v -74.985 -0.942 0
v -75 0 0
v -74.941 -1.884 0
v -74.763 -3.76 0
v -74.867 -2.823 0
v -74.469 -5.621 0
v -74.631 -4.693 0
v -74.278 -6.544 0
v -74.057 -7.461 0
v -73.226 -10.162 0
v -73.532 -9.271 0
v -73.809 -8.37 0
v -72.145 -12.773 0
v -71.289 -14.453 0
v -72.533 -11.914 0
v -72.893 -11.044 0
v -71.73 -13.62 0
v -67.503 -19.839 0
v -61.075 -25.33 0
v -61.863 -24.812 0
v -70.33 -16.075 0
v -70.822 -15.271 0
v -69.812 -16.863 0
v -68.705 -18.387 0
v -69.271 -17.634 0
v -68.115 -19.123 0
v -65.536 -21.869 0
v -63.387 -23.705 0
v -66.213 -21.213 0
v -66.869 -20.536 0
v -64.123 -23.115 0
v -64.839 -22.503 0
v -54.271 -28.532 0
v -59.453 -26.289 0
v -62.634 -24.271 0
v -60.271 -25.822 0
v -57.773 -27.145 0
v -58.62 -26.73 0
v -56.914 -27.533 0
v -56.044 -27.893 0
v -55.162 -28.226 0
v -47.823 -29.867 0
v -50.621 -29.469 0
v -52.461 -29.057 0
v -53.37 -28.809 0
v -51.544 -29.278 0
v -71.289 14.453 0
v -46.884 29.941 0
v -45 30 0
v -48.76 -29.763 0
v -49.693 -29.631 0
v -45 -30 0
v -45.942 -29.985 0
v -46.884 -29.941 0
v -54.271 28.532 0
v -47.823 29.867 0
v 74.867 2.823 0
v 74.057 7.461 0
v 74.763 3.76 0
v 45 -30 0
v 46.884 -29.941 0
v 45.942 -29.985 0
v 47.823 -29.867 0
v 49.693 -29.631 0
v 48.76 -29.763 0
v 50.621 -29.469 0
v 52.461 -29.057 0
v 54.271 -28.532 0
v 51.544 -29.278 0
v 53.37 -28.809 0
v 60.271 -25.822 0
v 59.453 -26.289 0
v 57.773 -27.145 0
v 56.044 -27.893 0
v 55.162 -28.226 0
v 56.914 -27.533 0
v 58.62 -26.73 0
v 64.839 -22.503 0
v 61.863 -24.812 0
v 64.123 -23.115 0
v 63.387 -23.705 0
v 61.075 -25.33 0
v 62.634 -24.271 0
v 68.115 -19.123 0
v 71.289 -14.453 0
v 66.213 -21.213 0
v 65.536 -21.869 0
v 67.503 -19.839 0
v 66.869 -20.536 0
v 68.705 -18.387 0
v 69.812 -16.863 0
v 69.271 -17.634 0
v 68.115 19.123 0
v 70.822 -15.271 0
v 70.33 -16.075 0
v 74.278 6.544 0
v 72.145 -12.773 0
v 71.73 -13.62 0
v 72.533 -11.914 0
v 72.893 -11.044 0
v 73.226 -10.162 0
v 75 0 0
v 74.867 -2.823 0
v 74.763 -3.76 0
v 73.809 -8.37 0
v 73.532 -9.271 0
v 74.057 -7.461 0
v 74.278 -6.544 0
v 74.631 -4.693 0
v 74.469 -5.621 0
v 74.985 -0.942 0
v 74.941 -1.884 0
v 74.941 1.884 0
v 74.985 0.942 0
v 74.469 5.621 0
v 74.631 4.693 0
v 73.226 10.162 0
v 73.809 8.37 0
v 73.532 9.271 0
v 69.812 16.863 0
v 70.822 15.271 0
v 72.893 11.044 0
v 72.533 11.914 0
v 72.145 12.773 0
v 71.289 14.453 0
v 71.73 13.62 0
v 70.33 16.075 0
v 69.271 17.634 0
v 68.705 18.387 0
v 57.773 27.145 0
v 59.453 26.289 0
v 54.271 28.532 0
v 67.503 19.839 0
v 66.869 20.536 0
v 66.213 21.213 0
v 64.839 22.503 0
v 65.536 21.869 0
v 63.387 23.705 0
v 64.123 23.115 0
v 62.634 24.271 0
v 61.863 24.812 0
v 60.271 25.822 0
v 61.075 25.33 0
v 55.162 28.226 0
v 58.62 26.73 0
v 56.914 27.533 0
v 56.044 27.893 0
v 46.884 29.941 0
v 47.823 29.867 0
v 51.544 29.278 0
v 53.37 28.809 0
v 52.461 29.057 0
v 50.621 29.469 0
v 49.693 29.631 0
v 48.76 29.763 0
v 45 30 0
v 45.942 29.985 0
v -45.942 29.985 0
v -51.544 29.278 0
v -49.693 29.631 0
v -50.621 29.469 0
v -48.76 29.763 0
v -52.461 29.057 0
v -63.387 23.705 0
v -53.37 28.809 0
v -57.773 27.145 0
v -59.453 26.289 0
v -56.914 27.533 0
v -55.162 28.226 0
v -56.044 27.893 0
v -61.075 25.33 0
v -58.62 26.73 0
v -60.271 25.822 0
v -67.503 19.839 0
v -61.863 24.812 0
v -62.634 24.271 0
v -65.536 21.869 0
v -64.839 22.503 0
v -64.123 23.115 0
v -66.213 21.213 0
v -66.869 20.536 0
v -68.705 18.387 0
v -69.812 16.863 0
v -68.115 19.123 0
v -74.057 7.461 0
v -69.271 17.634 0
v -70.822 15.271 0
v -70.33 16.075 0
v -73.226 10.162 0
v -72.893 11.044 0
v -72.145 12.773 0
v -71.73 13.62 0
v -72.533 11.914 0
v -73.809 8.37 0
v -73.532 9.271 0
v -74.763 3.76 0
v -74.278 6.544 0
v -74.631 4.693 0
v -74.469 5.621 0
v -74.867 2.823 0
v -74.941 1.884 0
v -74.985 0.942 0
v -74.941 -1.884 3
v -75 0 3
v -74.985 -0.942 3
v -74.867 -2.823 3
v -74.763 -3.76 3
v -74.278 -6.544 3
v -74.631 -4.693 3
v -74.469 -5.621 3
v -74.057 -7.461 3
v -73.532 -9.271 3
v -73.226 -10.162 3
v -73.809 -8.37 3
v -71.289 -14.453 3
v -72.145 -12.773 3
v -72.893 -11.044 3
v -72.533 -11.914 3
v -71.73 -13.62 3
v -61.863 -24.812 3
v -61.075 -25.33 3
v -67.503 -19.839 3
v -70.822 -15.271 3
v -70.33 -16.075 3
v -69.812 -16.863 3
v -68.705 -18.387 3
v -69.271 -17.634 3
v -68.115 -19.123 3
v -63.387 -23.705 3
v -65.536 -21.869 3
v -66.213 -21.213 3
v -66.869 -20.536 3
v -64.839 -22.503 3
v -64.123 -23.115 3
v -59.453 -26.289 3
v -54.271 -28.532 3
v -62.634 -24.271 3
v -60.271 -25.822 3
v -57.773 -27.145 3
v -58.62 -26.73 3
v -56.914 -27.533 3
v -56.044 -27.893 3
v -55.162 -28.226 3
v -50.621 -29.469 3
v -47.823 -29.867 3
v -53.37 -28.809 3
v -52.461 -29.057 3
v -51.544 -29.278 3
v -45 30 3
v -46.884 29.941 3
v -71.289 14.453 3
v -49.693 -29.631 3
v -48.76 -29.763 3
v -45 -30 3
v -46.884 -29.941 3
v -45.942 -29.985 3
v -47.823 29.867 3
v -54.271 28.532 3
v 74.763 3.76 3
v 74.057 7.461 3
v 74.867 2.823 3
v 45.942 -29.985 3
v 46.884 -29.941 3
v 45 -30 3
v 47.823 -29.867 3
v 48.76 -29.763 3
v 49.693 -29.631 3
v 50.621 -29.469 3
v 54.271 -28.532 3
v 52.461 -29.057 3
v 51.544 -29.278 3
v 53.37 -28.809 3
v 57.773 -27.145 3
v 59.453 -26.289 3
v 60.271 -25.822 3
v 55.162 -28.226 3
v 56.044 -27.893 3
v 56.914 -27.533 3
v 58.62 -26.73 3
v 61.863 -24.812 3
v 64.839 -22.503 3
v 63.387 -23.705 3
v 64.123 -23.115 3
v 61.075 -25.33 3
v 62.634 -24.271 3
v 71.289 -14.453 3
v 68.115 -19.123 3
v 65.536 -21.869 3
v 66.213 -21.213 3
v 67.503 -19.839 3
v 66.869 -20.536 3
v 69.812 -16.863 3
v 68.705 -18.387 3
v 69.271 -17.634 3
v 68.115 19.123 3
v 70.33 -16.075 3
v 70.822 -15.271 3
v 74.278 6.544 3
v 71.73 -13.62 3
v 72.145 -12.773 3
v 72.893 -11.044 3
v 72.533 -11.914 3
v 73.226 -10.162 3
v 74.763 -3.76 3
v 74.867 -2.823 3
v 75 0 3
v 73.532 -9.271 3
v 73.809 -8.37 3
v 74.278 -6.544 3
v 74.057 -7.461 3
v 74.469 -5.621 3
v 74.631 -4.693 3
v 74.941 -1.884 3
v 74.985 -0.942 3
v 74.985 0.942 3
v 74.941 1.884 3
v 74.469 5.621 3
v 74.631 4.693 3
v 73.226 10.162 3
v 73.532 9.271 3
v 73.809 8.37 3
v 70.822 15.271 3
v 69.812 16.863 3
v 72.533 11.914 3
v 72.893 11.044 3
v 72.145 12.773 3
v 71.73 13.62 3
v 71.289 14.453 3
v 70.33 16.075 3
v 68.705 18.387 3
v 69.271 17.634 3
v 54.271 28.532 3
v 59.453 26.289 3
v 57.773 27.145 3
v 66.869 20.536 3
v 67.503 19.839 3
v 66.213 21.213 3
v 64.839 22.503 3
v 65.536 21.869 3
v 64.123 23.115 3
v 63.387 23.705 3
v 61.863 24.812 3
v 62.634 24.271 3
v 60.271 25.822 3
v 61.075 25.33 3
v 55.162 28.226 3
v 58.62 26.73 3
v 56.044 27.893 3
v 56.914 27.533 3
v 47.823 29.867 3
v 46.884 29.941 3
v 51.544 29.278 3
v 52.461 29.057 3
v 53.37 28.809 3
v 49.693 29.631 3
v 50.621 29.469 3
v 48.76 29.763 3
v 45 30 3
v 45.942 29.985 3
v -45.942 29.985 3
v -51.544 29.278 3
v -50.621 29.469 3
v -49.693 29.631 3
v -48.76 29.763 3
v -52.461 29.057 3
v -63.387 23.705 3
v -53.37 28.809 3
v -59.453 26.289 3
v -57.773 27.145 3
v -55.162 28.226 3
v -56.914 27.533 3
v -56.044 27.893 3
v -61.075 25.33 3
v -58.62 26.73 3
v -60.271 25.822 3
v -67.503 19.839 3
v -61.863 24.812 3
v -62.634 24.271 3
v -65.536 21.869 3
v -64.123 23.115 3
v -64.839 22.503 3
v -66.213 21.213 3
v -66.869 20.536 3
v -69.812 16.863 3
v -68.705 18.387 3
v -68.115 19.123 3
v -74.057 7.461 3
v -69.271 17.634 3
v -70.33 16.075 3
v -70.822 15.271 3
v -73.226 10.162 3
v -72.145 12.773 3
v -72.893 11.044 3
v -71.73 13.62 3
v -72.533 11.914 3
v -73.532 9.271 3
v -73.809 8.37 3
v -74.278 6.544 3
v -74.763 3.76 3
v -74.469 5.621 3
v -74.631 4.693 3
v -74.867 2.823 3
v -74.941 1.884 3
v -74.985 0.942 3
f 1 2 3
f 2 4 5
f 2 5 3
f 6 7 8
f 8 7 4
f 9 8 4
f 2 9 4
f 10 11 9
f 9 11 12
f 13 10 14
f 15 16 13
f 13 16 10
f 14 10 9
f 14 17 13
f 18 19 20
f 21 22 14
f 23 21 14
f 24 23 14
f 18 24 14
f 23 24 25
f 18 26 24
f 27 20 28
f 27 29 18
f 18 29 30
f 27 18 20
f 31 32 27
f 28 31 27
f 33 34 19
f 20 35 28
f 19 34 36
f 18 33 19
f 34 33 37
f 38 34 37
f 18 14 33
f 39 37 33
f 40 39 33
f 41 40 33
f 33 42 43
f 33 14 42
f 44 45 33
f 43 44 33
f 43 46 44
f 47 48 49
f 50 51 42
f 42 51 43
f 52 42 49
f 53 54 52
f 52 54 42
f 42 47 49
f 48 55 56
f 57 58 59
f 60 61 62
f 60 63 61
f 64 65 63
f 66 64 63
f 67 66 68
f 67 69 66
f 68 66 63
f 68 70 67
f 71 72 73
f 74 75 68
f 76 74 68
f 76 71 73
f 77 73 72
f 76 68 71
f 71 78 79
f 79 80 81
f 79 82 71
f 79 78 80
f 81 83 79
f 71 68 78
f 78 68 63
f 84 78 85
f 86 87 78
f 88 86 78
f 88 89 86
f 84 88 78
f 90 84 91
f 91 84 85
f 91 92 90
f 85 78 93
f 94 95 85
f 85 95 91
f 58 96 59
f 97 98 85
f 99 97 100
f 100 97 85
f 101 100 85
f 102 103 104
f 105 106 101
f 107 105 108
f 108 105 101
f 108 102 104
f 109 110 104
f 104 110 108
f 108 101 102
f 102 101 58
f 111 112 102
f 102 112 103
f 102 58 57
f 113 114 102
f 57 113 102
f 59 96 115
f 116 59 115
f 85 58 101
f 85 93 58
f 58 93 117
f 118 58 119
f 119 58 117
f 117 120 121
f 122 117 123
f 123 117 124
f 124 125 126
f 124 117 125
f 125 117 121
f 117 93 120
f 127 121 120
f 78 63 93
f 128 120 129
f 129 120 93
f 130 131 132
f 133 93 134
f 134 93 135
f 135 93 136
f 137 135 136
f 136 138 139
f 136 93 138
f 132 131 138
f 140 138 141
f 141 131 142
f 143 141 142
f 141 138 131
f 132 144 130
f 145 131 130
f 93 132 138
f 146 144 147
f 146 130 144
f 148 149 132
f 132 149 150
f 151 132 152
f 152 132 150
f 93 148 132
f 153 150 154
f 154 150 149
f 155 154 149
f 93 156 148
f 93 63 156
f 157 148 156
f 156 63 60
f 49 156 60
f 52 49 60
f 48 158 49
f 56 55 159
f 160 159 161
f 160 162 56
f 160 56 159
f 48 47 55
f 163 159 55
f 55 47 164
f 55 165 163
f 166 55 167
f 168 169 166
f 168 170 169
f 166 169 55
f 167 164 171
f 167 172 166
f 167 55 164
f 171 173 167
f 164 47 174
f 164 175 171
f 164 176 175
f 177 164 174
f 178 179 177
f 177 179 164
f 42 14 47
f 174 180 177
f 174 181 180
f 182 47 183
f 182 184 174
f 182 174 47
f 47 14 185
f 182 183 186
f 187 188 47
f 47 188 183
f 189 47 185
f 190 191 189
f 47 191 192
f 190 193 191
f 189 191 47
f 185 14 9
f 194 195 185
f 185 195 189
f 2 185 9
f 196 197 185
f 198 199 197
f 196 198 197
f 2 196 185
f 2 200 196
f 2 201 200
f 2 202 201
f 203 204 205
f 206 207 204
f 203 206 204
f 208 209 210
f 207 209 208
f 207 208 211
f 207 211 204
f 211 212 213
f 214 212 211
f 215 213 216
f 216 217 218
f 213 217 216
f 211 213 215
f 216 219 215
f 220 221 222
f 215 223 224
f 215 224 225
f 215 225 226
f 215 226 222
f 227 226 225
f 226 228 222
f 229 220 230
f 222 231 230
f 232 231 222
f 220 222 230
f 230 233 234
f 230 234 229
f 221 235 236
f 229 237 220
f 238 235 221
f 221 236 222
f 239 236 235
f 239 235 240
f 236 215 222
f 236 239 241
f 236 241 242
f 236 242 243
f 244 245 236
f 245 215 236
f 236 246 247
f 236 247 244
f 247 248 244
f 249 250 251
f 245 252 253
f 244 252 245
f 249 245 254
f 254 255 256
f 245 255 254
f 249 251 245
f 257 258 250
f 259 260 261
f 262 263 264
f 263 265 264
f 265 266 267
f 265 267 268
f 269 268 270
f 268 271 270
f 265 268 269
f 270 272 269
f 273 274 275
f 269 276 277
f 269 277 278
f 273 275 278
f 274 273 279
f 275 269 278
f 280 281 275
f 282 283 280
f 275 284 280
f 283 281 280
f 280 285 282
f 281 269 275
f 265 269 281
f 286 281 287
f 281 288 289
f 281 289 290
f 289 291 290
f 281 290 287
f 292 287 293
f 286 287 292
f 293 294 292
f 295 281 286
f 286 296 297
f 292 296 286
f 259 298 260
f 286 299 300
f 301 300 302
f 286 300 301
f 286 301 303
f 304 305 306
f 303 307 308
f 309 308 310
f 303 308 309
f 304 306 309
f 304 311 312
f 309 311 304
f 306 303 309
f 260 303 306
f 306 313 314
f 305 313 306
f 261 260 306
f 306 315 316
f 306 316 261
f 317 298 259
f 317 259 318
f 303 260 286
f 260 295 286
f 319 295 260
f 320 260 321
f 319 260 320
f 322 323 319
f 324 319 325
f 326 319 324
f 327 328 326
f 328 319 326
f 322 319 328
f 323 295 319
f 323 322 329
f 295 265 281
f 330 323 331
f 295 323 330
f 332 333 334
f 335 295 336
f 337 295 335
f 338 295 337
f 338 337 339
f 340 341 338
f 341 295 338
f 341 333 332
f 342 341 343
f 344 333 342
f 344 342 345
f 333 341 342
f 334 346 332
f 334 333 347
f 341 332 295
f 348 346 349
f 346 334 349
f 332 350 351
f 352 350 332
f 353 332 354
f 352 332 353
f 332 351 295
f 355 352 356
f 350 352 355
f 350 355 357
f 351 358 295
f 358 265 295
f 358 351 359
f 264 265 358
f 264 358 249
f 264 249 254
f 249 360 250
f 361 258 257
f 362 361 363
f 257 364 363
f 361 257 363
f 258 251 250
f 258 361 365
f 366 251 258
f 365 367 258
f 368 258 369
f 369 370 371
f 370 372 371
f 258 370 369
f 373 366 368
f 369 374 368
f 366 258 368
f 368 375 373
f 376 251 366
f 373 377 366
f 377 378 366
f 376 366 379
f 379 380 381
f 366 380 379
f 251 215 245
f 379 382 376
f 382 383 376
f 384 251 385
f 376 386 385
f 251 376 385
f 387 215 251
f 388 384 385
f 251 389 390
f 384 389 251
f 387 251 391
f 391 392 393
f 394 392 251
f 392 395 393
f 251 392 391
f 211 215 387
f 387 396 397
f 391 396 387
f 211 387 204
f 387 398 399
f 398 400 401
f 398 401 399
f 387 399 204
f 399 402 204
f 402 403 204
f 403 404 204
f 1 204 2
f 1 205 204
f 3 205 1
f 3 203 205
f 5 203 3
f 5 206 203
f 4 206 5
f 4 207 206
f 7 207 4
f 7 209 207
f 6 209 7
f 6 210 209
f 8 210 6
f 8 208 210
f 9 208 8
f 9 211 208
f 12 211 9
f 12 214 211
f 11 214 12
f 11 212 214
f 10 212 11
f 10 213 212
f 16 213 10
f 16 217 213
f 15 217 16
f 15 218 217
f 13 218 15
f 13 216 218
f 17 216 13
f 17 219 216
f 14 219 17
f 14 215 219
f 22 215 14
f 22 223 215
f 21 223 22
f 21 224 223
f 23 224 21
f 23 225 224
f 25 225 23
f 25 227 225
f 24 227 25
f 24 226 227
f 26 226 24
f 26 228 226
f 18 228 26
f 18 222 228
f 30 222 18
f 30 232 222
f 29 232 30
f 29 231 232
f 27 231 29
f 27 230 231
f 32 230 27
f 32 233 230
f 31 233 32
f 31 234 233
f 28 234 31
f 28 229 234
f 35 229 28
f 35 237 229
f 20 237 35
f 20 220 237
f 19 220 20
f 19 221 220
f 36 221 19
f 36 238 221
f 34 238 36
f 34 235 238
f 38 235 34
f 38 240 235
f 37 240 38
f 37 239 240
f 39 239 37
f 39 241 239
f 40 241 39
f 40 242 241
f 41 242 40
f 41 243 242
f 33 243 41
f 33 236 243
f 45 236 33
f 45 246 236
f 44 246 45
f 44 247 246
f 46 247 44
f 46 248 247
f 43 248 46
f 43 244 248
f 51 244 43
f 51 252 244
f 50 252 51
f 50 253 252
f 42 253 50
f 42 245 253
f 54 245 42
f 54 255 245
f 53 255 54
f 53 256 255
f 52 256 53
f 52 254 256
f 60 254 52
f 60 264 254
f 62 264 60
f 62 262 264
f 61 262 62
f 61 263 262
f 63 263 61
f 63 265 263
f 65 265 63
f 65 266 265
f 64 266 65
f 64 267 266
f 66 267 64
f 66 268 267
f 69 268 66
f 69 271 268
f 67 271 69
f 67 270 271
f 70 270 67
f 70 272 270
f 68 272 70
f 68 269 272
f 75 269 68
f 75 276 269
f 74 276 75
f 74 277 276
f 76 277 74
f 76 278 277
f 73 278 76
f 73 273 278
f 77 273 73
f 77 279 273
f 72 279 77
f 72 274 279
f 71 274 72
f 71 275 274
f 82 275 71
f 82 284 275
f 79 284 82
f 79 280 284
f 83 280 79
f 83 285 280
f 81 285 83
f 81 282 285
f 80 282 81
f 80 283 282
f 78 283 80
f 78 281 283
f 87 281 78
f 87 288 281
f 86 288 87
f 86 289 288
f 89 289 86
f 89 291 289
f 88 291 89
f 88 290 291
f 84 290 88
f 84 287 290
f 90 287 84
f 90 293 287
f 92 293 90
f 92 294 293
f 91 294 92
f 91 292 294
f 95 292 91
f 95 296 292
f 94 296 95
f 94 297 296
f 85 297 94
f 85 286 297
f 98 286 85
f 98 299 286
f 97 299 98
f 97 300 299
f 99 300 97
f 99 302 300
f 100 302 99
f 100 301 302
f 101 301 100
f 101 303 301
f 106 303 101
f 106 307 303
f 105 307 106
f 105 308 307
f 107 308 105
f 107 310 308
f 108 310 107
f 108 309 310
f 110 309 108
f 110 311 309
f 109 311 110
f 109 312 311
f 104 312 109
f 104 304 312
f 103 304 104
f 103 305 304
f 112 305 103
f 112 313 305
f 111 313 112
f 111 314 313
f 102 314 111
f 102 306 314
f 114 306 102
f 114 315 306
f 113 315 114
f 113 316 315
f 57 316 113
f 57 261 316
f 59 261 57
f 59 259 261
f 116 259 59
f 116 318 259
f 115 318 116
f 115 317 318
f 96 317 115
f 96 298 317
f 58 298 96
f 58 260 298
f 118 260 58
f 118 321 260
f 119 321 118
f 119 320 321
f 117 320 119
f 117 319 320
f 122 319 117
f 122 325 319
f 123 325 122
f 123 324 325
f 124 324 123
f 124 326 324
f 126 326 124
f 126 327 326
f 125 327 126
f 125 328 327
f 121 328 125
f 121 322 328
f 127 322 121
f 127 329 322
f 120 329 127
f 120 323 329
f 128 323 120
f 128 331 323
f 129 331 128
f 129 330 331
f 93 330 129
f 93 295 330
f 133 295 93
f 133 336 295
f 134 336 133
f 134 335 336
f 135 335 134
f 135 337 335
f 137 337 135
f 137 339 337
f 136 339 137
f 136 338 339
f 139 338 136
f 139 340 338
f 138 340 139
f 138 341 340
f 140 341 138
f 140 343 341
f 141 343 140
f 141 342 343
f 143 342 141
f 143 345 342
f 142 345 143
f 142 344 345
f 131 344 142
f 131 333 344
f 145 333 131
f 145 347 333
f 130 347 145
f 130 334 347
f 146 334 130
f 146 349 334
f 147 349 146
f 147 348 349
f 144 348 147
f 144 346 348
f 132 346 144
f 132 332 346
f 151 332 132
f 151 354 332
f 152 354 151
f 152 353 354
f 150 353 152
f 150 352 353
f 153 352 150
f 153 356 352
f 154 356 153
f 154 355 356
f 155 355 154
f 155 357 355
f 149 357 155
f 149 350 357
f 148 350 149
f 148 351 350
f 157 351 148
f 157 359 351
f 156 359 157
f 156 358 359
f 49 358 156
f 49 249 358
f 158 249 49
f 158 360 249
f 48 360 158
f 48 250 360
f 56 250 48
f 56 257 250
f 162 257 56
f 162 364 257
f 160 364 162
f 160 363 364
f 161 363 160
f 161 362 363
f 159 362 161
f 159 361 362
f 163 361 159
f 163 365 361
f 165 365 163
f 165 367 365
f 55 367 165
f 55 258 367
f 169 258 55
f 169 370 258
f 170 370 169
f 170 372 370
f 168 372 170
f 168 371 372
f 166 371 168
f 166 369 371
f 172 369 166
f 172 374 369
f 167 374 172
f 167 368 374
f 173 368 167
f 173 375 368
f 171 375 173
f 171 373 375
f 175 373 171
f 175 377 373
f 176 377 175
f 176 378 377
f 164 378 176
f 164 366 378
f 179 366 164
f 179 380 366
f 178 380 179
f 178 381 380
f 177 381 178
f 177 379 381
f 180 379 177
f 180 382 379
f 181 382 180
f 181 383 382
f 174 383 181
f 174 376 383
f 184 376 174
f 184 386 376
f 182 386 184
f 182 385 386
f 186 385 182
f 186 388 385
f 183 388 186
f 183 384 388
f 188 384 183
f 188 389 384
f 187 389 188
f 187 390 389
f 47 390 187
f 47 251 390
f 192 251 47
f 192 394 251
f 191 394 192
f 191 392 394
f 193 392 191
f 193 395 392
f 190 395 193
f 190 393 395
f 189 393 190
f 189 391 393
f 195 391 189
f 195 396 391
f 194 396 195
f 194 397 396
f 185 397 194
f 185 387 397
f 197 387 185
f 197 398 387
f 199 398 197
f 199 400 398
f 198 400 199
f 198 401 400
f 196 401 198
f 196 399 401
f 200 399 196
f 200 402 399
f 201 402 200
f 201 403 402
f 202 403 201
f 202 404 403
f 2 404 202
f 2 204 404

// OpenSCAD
// file: shared.scad
module stadium(width, length) {
    hull() {
        translate([(width-length)/2, 0, 0]) circle(d=min(width, length));
        translate([-(width-length)/2, 0, 0]) circle(d=min(width, length));
    }
}
// main file
include <shared.scad>;

$fn=200;

/* Internval Plate */
module internal_plate(width, length, thickness=3) {
    linear_extrude(height=thickness) stadium(width, length);
}

internal_plate(60, 150);
